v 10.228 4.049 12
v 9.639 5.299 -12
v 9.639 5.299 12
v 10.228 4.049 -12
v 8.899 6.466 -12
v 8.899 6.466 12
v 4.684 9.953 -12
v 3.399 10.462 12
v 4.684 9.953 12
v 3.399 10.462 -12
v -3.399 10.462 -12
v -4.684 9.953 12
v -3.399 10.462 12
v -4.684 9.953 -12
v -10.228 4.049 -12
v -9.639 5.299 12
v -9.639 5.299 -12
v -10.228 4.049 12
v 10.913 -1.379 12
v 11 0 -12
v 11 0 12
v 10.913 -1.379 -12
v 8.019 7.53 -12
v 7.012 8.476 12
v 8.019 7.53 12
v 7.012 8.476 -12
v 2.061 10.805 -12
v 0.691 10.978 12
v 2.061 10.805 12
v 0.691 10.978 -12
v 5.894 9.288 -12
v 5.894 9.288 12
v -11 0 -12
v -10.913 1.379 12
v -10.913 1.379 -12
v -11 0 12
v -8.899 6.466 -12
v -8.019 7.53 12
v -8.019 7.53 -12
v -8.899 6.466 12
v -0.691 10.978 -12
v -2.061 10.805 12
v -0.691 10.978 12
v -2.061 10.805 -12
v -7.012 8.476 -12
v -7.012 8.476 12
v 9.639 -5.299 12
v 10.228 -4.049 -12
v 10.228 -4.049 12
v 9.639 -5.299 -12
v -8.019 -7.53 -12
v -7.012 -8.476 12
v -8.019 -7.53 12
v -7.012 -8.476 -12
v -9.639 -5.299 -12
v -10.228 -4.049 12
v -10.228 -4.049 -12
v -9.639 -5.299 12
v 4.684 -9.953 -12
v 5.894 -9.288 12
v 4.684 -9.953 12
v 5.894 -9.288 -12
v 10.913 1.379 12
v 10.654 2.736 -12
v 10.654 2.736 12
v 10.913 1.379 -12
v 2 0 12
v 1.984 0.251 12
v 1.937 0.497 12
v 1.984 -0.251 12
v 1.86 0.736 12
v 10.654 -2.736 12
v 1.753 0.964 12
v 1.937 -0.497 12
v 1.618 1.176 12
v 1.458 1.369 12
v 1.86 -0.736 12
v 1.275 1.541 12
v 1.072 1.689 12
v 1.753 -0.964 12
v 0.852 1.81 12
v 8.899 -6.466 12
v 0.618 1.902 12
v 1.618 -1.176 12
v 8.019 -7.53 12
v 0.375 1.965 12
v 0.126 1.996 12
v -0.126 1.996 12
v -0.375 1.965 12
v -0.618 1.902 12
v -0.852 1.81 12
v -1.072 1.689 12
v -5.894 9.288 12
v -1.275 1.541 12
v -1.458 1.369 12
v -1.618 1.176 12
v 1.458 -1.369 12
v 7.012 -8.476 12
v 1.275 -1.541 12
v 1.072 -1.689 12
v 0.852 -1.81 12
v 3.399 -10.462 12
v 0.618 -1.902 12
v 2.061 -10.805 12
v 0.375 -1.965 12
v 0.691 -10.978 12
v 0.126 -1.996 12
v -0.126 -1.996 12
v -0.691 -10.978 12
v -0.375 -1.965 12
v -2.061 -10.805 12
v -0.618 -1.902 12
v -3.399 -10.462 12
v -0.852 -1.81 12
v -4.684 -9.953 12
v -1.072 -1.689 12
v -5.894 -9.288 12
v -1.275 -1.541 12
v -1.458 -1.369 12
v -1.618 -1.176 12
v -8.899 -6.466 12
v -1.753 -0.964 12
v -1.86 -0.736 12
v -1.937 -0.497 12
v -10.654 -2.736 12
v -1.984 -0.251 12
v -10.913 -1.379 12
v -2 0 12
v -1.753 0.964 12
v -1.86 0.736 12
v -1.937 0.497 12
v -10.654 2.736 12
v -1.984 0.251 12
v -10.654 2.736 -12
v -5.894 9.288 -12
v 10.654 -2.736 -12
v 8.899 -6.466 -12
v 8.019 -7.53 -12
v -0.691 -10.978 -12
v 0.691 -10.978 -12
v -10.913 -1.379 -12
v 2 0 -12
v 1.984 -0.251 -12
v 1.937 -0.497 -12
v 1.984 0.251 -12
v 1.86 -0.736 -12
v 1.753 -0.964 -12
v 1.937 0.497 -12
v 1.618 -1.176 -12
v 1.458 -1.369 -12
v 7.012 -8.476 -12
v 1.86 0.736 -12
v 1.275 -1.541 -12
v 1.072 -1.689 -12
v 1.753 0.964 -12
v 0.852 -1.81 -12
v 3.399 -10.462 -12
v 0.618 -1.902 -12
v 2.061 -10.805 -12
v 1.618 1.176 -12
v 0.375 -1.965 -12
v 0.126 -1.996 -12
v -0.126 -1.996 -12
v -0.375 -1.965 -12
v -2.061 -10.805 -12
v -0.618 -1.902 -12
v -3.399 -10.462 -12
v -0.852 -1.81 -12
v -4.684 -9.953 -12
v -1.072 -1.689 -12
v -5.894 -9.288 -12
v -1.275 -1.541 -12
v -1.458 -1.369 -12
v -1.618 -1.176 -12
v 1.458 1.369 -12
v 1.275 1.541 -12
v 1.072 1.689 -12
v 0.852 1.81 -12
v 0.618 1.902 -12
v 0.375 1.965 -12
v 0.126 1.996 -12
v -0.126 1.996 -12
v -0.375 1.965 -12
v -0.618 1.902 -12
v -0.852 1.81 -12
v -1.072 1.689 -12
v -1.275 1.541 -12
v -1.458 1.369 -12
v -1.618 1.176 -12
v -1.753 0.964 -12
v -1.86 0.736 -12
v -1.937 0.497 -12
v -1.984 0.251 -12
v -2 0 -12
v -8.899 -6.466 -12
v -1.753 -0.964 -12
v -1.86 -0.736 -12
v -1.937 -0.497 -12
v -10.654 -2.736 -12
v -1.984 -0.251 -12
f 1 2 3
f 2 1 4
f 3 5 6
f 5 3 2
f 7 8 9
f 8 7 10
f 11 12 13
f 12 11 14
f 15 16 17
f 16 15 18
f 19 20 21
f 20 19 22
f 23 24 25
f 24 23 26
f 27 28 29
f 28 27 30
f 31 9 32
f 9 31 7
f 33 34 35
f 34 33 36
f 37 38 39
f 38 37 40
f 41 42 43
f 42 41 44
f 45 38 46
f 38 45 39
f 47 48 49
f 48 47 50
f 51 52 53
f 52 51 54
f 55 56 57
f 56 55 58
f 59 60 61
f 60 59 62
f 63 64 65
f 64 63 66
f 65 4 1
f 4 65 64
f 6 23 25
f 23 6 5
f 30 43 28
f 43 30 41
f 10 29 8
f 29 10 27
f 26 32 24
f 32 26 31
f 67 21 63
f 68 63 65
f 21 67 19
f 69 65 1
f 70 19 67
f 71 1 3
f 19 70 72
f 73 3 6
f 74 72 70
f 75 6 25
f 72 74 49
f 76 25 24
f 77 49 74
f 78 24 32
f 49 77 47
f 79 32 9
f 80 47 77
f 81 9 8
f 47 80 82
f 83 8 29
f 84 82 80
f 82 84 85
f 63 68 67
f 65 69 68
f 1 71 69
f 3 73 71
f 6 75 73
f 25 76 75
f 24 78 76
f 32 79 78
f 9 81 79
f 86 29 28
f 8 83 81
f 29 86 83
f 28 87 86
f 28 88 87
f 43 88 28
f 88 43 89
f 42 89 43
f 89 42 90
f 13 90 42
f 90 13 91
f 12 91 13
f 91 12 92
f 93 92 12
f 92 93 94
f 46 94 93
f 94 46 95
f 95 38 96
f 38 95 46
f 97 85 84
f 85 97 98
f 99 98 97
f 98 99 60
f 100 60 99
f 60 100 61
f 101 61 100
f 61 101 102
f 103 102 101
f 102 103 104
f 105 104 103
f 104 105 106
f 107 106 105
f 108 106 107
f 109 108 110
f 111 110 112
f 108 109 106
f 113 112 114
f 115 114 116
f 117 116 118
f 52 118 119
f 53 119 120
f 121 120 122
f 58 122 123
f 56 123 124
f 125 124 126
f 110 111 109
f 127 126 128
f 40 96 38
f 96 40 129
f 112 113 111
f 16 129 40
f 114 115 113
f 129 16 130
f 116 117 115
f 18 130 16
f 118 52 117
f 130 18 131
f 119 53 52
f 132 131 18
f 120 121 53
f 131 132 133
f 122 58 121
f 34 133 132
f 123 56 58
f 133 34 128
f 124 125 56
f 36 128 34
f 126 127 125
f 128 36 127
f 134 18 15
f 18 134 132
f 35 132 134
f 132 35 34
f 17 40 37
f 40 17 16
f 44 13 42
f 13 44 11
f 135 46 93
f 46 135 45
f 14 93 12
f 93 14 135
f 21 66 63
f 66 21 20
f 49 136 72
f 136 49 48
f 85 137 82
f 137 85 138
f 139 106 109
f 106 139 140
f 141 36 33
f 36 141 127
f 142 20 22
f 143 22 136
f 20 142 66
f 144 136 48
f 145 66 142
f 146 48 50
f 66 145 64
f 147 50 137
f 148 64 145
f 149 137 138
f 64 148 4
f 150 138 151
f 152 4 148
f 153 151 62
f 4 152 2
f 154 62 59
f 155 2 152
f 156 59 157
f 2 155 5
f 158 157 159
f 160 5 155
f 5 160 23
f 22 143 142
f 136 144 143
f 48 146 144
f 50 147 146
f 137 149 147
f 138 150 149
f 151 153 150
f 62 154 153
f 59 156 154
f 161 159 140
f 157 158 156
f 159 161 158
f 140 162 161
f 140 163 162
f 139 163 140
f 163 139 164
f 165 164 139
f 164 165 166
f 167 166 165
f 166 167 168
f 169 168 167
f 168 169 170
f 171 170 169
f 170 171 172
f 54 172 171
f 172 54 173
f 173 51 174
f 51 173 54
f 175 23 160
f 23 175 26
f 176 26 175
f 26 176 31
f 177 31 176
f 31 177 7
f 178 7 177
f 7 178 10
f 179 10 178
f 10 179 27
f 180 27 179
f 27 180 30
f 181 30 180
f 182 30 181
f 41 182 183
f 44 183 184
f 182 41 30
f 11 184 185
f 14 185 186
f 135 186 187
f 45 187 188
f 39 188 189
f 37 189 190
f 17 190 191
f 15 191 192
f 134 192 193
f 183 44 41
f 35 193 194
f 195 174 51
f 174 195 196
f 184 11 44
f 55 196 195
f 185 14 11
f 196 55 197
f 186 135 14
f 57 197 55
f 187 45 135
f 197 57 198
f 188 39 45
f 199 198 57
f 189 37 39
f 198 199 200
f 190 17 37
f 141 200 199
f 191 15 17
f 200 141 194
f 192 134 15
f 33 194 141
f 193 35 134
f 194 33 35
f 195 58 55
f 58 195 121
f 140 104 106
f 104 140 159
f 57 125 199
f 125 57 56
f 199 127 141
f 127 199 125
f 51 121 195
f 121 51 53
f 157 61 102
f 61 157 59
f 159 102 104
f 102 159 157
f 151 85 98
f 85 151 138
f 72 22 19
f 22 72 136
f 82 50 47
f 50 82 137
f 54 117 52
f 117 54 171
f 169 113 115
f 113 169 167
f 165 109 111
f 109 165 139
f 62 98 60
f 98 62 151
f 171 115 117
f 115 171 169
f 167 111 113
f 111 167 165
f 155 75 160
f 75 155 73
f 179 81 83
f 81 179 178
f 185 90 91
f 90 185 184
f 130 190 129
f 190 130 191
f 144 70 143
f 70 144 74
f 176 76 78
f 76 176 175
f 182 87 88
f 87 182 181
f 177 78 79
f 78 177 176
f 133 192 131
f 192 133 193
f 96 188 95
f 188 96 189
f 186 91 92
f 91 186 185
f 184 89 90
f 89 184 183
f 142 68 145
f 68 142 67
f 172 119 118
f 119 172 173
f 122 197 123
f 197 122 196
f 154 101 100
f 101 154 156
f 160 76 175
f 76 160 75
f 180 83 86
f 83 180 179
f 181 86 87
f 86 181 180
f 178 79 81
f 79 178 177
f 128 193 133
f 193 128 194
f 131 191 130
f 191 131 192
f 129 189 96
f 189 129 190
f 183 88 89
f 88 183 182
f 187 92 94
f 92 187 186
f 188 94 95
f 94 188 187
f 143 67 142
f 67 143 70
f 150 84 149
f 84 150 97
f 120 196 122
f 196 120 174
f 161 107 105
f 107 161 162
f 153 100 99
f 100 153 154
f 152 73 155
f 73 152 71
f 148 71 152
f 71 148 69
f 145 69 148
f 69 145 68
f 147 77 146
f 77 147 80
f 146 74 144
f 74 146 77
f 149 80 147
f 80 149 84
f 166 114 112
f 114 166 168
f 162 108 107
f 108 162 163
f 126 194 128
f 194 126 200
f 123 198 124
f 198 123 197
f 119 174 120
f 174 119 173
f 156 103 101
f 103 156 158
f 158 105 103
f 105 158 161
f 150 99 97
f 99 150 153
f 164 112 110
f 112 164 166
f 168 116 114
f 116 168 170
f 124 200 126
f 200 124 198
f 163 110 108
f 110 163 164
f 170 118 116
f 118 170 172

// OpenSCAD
$fn = 50;


difference() {
	union() {
		translate(v = [0, 0, -12.0000000000]) {
			cylinder(h = 24, r = 11.0000000000);
		}
	}
	union() {
		translate(v = [0, 0, -100.0000000000]) {
			cylinder(h = 200, r = 2);
		}
	}
}
